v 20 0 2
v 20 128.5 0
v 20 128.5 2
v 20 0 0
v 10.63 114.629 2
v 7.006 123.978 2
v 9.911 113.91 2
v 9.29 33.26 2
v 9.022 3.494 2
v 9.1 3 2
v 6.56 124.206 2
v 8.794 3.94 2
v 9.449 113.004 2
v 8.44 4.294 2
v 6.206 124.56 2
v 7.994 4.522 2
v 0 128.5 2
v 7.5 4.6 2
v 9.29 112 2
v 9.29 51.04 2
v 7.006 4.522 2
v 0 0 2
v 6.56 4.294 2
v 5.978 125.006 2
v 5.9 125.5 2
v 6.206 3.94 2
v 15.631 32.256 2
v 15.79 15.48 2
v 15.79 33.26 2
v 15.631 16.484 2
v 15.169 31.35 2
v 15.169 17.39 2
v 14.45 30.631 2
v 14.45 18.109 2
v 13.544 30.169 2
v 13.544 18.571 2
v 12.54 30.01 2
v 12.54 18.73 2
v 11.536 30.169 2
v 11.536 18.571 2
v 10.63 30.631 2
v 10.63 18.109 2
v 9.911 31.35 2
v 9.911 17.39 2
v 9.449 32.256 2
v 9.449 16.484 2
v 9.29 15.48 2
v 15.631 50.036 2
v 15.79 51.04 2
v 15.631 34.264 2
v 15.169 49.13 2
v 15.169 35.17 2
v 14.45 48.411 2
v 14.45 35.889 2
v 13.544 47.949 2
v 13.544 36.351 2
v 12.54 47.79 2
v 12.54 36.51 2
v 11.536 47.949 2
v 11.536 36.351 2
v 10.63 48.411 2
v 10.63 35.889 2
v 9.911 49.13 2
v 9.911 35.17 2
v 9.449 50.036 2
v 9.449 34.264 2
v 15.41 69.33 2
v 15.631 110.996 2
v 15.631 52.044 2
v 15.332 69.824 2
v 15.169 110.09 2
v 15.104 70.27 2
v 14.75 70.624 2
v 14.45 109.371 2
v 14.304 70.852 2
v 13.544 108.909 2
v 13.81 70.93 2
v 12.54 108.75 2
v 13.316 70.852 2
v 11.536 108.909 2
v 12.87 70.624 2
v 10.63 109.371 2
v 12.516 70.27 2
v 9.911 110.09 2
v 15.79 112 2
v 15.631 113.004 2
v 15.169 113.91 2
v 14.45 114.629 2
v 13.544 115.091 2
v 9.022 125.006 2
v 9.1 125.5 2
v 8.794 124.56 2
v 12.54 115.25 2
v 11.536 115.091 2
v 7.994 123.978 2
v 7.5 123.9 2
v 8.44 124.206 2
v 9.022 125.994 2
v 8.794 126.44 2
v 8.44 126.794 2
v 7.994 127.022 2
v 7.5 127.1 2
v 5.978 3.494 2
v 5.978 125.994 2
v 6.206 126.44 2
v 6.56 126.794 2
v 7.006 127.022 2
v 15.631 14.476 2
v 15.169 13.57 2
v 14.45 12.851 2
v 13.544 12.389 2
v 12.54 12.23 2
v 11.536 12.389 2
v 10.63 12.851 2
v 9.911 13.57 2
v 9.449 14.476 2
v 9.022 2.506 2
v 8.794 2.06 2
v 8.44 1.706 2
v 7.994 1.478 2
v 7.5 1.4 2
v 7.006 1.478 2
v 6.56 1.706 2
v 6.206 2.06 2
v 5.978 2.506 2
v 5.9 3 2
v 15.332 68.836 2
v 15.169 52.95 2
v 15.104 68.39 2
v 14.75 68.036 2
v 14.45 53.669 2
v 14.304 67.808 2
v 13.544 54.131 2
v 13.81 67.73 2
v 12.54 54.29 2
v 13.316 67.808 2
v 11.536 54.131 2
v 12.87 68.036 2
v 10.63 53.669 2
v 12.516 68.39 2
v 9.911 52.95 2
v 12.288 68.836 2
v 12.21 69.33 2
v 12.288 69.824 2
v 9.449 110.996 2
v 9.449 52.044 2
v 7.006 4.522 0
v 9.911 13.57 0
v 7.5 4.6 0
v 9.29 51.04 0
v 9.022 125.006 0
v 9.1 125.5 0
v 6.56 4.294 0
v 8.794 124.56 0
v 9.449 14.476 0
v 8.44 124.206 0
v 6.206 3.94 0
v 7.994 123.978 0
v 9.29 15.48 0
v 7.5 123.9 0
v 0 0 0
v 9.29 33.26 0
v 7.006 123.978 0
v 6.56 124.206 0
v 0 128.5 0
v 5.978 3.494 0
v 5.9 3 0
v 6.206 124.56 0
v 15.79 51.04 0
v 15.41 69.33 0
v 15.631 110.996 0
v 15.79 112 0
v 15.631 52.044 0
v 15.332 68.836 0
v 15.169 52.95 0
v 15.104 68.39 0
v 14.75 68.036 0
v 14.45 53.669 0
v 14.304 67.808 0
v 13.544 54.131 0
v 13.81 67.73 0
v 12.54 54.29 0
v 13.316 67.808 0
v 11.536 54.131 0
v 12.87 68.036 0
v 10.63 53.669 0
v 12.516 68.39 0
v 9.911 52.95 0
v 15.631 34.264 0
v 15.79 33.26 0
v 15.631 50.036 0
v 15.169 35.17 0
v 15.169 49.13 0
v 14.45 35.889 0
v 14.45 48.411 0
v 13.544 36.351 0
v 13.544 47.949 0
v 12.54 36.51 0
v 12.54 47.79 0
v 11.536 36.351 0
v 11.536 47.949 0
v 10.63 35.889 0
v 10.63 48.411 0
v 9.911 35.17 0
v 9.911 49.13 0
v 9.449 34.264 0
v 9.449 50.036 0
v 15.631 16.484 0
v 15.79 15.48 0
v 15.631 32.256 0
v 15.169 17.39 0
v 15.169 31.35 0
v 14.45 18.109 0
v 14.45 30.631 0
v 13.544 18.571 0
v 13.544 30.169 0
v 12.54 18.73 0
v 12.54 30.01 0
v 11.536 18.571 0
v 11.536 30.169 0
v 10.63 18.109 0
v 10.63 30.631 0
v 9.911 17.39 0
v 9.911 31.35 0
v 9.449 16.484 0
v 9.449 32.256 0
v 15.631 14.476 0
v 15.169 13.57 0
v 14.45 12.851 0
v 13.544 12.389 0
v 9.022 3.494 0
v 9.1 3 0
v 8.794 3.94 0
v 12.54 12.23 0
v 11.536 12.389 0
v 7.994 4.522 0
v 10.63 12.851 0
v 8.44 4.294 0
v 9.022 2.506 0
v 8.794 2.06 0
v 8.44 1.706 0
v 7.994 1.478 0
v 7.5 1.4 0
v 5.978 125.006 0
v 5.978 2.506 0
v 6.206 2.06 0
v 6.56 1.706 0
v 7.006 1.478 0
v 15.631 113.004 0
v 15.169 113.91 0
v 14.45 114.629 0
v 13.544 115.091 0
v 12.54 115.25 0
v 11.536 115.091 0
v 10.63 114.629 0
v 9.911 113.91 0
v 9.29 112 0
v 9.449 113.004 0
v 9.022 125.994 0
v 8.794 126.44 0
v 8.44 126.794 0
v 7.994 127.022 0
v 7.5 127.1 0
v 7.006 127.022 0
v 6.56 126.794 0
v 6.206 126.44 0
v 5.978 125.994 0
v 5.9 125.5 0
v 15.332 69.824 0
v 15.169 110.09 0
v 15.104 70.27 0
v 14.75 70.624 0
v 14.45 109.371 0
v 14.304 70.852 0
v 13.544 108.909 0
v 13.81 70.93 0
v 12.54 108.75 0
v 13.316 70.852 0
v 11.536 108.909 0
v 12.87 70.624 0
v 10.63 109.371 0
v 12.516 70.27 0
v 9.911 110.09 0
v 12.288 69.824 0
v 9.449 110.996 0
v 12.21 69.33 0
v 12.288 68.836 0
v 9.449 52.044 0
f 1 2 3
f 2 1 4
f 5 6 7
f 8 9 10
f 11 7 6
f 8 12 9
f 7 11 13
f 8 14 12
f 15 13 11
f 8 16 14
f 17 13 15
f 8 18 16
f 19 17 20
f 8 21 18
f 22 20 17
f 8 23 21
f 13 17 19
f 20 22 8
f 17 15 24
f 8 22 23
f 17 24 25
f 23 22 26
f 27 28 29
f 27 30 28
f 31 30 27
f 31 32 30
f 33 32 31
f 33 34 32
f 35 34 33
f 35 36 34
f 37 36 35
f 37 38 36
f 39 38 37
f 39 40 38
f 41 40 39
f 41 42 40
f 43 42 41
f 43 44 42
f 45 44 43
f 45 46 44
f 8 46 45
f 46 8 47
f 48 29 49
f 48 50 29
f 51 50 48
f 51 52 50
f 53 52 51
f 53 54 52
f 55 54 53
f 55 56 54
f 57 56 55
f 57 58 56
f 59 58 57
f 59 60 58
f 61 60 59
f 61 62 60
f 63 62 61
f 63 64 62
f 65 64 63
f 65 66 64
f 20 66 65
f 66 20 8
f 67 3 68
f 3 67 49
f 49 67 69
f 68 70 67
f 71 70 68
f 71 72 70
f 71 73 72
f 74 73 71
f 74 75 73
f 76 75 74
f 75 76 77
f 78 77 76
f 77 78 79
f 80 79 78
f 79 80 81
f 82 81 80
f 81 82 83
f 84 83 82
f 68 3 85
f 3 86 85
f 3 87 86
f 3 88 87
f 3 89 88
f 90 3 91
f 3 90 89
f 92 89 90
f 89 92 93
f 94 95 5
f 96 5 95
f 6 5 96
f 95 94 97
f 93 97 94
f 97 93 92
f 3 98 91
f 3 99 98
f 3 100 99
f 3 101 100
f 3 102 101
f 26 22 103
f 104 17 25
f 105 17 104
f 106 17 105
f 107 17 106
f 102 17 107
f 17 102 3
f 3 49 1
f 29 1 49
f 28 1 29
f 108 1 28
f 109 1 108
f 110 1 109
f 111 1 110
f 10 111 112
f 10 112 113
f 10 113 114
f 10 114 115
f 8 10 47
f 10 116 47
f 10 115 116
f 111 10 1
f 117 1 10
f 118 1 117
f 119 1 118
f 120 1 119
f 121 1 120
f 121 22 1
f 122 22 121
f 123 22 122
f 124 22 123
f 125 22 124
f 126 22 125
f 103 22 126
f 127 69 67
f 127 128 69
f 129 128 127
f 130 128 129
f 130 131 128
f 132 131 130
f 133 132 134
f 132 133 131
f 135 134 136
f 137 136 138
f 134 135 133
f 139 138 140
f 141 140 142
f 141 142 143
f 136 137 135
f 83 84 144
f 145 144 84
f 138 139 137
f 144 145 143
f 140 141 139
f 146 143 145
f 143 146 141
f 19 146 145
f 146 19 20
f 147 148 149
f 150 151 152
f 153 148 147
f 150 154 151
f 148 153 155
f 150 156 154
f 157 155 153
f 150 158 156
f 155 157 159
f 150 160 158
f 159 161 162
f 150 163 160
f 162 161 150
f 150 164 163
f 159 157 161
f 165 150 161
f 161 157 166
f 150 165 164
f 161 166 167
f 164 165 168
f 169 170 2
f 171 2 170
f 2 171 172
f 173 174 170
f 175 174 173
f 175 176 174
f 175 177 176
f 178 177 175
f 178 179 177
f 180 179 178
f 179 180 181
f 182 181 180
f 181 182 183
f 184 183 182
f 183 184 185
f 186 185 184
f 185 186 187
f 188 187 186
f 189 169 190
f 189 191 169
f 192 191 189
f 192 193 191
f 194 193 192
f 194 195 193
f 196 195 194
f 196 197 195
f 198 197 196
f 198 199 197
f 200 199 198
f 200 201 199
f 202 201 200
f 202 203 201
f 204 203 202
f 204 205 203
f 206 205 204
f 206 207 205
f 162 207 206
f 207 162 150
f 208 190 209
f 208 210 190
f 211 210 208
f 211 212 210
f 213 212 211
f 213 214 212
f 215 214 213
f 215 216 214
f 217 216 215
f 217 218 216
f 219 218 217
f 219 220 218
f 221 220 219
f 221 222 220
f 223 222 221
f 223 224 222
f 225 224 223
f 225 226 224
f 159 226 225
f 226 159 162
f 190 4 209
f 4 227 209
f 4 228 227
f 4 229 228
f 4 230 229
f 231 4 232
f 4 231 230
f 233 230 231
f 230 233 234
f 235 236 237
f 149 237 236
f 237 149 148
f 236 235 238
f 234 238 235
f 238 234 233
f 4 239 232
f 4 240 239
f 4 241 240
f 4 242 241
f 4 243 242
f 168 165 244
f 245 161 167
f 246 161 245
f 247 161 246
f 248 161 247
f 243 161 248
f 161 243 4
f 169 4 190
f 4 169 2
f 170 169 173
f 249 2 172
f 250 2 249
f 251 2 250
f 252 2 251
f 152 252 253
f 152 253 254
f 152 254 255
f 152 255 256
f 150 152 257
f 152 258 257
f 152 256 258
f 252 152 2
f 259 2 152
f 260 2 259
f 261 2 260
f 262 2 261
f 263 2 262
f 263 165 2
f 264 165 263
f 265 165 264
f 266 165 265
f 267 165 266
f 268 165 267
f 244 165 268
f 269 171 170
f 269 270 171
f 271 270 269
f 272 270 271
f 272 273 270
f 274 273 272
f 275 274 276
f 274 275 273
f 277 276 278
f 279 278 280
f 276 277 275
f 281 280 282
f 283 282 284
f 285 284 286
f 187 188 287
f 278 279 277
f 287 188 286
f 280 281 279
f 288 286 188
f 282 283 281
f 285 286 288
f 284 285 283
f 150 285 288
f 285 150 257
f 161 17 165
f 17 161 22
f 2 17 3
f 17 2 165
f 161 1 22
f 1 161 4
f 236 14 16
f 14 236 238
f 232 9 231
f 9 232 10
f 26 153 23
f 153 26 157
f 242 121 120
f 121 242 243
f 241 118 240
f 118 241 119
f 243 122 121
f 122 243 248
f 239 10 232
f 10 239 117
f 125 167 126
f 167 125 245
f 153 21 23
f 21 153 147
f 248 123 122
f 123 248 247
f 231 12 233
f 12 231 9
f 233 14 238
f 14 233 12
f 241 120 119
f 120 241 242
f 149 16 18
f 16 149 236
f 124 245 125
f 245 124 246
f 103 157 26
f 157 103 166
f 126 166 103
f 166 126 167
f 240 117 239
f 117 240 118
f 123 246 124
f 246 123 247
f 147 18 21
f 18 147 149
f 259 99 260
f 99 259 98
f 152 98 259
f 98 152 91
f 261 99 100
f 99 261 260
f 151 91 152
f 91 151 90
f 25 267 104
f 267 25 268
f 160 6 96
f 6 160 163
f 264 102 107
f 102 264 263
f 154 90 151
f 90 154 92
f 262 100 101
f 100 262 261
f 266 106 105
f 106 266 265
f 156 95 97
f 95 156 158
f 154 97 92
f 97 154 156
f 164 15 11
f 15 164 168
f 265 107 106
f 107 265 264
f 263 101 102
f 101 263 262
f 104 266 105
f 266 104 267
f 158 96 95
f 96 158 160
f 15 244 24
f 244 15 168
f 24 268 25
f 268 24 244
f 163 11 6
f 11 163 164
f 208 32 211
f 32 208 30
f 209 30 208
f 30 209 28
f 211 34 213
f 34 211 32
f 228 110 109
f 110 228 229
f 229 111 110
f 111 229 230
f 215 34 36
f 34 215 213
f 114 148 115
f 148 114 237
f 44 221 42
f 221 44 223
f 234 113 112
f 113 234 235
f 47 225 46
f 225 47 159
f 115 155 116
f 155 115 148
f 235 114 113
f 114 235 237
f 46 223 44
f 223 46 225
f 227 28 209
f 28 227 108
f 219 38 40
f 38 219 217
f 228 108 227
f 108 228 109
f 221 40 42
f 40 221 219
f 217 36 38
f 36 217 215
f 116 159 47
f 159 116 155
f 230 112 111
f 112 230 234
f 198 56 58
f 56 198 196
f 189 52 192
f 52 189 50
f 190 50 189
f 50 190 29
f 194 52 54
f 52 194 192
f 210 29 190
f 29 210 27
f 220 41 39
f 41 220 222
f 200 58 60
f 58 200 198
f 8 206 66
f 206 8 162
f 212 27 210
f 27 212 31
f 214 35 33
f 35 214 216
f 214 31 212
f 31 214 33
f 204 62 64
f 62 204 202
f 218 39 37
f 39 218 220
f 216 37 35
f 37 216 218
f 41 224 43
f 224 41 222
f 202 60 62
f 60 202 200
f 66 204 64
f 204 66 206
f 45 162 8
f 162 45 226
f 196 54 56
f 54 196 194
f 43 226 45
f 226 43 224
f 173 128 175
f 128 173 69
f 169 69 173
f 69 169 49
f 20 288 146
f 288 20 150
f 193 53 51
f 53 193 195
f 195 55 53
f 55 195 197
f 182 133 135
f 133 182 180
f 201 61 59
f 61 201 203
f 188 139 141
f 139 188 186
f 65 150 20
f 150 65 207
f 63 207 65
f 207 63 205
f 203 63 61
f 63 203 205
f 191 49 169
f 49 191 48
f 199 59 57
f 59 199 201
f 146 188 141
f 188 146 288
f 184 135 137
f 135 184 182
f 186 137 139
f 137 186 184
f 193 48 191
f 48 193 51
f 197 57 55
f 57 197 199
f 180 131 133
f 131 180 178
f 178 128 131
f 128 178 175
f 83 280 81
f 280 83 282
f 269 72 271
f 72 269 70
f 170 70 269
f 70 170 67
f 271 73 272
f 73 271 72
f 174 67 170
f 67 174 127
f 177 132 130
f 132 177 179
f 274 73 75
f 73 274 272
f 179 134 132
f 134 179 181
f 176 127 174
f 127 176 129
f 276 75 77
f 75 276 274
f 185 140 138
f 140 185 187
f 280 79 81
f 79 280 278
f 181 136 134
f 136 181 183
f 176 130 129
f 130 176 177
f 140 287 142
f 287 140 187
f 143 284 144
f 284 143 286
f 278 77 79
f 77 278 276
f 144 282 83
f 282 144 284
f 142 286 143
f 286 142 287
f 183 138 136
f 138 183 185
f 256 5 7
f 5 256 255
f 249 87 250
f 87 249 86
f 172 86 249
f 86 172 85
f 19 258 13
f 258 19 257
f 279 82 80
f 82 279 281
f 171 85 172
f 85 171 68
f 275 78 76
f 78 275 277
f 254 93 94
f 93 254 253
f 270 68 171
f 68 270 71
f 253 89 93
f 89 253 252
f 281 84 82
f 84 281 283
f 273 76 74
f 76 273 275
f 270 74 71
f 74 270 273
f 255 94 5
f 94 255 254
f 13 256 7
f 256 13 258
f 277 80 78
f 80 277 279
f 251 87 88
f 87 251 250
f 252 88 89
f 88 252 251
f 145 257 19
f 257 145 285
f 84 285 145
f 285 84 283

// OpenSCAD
// file: ../../../share/openscad/eurorack-panel.scad
// this is based on A100 spec from doepfer https://doepfer.de/a100_man/a100m_e.htm

eurorack_panel_height = function() 128.5;
eurorack_panel_width = function(width_in_hp) width_in_hp * 5;

module eurorack_panel(width_in_hp, thickness=2) {
    difference() {
        cube([eurorack_panel_width(width_in_hp), eurorack_panel_height(), thickness]);

        translate([7.5, 3, 0])
            cylinder(thickness, d=3.2, $fn=20);
        translate([7.5, eurorack_panel_height() - 3, 0])
            cylinder(thickness, d=3.2, $fn=20);

        if (width_in_hp >= 8) {
            translate([eurorack_panel_width(width_in_hp) - 7.5, 3, 0])
                cylinder(thickness, d=3.2, $fn=20);
            translate([eurorack_panel_width(width_in_hp) - 7.5, eurorack_panel_height() - 3, 0])
                cylinder(thickness, d=3.2, $fn=20);
        }
    }
}
// main file
/*
 * SPDX-FileCopyrightText: 2021-2022 Rafael G. Martins <rafael@rafaelmartins.eng.br>
 * SPDX-License-Identifier: CERN-OHL-S-2.0
 */

include <../../../share/openscad/eurorack-panel.scad>

// WARNING: this is a panel for my personal handwired prototype.
//          it won't match the "official" PCBs.

width_in_hp = 4;
thickness = 2;

pcb_width = 17.78;
pcb_height = 109.22;

pcb0_x = (eurorack_panel_width(width_in_hp) - pcb_width) / 2;
pcb0_y = (eurorack_panel_height() - pcb_height) / 2;

led_d = 3.2;
led_distance_x = 12.7;
led_distance_y = 59.69;

jack_d = 6.5;
jack_top_distance_x = 11.43;
jack_top_distance_y = 5.84;
jack_top_spacing = 17.78;
jack_bottom_distance_x = 11.43;
jack_bottom_distance_y = 102.36;

difference() {
    eurorack_panel(width_in_hp, thickness);

    translate([pcb0_x, pcb0_y, 0]) {
        for (i = [0 : 2]) {
            translate([jack_top_distance_x, jack_top_distance_y + i * jack_top_spacing, 0]) {
                cylinder(thickness, d=jack_d, $fn=20);
            }
        }

        translate([led_distance_x, led_distance_y, 0])
            cylinder(thickness, d=led_d, $fn=20);

        translate([jack_bottom_distance_x, jack_bottom_distance_y, 0])
            cylinder(thickness, d=jack_d, $fn=20);
    }
}
